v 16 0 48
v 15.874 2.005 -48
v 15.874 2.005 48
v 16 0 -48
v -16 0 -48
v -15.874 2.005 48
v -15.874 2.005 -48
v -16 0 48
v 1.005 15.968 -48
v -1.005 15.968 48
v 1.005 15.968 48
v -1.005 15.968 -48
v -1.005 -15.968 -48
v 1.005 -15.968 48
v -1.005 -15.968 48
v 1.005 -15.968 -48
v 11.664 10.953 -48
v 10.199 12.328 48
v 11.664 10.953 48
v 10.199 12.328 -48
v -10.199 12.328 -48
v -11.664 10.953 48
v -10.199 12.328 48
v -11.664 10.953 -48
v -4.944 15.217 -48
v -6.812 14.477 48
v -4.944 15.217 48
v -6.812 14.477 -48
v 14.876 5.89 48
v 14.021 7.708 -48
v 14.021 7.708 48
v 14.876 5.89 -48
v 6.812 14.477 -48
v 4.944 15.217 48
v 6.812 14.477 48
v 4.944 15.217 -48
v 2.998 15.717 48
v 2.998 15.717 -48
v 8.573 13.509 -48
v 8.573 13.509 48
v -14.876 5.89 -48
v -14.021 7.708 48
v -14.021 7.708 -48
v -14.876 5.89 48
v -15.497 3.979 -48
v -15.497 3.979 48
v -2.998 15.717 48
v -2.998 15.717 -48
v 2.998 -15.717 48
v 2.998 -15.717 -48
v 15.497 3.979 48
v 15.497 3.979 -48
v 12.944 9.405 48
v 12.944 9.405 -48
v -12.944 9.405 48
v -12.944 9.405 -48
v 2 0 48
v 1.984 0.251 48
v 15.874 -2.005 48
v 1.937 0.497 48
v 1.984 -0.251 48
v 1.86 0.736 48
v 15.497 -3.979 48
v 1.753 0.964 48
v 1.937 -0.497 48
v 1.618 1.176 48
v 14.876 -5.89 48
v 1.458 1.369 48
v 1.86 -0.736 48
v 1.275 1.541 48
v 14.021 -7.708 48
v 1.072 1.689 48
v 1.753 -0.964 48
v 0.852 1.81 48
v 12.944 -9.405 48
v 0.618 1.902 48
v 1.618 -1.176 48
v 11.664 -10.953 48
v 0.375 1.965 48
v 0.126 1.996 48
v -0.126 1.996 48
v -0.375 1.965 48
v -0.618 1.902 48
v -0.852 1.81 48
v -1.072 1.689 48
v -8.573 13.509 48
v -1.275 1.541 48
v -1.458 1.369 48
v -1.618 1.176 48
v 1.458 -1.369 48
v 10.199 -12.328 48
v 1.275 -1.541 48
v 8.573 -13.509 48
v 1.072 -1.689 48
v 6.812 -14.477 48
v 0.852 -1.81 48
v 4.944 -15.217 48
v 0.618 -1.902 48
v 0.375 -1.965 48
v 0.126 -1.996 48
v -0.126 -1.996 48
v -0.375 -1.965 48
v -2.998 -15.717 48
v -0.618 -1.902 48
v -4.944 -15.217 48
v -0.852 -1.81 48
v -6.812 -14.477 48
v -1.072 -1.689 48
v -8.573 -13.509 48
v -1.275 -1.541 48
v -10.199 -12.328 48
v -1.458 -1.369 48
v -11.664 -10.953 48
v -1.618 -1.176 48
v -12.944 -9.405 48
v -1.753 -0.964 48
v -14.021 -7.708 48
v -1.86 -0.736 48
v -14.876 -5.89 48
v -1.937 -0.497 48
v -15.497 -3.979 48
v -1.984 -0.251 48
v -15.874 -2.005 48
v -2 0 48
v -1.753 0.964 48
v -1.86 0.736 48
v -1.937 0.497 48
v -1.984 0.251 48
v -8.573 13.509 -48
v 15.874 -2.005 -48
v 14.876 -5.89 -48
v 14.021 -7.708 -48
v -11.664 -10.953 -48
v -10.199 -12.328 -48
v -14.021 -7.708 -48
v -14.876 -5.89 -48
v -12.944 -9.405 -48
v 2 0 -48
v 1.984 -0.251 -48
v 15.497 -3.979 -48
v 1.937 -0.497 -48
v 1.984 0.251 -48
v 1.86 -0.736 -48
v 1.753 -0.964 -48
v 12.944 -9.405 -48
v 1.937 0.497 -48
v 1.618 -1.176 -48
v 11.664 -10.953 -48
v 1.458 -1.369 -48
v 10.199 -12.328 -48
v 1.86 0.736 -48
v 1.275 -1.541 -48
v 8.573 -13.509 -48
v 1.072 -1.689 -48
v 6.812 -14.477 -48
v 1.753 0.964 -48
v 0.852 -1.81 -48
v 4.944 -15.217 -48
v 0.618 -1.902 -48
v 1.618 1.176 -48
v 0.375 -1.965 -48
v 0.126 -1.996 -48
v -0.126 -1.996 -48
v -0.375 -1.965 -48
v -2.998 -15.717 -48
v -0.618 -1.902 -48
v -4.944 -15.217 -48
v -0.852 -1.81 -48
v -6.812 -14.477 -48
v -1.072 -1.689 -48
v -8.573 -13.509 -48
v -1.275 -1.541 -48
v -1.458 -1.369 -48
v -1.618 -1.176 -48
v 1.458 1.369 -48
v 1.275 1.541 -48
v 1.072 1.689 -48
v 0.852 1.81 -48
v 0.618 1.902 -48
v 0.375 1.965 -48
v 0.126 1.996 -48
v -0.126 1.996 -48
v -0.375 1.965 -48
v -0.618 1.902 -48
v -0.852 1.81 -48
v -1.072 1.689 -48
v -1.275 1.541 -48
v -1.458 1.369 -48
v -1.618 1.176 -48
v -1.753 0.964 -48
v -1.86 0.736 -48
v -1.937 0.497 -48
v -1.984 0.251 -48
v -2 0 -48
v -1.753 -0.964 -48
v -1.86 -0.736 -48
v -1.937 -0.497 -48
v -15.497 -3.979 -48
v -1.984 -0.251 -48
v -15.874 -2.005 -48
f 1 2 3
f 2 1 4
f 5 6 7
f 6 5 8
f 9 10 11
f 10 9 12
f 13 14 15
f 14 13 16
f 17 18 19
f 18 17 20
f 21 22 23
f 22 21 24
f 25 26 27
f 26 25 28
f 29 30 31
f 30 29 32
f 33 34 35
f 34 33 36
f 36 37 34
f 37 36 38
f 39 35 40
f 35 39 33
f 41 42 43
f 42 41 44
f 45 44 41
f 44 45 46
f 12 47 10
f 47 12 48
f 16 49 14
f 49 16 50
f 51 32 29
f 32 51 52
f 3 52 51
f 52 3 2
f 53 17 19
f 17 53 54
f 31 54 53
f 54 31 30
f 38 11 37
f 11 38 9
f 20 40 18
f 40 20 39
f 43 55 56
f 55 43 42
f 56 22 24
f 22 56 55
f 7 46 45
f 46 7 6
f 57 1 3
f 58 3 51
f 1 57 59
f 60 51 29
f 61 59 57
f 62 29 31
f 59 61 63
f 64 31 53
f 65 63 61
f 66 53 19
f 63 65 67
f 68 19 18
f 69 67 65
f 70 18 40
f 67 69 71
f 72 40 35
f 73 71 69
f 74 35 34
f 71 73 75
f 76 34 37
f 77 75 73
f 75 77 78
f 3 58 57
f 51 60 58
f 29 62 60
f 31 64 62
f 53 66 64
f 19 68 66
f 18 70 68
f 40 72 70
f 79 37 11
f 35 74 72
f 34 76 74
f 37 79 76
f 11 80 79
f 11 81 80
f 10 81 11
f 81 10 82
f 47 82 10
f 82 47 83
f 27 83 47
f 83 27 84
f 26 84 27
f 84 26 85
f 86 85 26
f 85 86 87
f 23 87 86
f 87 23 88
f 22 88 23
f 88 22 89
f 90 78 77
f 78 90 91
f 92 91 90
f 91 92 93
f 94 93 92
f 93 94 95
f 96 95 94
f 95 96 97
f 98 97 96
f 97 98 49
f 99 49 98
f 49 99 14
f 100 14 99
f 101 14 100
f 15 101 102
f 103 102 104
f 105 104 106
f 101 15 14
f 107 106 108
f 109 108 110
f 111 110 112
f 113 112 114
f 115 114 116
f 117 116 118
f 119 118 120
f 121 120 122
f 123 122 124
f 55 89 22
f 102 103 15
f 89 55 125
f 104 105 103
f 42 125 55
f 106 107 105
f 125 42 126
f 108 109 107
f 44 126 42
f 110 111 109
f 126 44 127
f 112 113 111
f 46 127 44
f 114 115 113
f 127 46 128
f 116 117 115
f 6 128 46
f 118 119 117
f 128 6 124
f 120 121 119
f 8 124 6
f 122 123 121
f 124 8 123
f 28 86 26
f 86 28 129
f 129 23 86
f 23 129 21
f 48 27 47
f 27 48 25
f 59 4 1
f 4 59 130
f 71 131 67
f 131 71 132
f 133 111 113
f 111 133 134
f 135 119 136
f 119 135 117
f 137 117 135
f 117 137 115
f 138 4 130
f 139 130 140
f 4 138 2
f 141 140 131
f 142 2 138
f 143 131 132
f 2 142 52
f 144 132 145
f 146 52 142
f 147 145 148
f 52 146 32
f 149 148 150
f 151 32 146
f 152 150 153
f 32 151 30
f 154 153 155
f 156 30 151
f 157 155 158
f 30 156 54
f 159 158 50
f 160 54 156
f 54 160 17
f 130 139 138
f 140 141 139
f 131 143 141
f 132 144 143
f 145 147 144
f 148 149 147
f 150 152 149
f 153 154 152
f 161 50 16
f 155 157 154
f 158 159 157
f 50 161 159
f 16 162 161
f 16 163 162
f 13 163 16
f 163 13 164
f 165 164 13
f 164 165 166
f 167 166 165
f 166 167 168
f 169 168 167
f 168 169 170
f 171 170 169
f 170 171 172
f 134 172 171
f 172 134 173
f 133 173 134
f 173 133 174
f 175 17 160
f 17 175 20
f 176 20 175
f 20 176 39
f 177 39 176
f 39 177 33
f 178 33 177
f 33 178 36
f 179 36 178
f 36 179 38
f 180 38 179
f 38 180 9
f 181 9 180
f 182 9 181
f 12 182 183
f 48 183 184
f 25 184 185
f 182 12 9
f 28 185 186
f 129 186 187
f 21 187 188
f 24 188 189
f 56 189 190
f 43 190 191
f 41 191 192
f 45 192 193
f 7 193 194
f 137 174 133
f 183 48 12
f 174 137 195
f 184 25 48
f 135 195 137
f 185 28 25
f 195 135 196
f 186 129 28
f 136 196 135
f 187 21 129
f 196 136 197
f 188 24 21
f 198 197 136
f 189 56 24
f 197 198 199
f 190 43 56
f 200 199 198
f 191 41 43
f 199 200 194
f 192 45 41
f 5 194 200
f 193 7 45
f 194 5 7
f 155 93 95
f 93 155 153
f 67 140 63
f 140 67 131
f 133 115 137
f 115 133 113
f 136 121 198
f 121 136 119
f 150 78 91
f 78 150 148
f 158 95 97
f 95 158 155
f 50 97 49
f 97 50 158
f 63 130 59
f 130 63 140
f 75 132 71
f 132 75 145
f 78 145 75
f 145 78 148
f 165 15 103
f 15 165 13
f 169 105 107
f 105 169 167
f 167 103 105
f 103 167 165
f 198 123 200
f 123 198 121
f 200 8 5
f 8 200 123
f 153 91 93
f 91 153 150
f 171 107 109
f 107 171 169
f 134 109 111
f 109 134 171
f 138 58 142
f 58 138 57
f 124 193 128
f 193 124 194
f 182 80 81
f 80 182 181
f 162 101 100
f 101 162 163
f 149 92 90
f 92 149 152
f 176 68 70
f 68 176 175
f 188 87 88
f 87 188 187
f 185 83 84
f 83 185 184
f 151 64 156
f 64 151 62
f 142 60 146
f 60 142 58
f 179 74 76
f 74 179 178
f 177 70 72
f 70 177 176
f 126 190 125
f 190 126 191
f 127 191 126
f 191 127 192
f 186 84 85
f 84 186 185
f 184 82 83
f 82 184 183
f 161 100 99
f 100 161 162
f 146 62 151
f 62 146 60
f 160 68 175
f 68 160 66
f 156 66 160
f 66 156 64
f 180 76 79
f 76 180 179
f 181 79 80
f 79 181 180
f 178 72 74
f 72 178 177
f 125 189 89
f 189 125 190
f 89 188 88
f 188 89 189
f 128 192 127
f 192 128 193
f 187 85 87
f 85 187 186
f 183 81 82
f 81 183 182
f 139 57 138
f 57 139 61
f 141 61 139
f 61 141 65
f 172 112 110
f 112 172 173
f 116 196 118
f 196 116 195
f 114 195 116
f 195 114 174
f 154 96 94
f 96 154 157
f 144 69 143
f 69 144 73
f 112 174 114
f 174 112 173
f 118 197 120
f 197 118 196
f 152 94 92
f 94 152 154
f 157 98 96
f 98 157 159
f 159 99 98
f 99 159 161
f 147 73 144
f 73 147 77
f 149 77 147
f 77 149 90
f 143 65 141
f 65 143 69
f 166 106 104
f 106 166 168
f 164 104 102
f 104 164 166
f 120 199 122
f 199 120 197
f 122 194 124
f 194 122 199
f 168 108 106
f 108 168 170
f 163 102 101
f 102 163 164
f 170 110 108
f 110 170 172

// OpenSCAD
$fn = 50;


difference() {
	union() {
		translate(v = [0, 0, -48.0000000000]) {
			cylinder(h = 96, r = 16.0000000000);
		}
	}
	union() {
		translate(v = [0, 0, -100.0000000000]) {
			cylinder(h = 200, r = 2);
		}
	}
}
